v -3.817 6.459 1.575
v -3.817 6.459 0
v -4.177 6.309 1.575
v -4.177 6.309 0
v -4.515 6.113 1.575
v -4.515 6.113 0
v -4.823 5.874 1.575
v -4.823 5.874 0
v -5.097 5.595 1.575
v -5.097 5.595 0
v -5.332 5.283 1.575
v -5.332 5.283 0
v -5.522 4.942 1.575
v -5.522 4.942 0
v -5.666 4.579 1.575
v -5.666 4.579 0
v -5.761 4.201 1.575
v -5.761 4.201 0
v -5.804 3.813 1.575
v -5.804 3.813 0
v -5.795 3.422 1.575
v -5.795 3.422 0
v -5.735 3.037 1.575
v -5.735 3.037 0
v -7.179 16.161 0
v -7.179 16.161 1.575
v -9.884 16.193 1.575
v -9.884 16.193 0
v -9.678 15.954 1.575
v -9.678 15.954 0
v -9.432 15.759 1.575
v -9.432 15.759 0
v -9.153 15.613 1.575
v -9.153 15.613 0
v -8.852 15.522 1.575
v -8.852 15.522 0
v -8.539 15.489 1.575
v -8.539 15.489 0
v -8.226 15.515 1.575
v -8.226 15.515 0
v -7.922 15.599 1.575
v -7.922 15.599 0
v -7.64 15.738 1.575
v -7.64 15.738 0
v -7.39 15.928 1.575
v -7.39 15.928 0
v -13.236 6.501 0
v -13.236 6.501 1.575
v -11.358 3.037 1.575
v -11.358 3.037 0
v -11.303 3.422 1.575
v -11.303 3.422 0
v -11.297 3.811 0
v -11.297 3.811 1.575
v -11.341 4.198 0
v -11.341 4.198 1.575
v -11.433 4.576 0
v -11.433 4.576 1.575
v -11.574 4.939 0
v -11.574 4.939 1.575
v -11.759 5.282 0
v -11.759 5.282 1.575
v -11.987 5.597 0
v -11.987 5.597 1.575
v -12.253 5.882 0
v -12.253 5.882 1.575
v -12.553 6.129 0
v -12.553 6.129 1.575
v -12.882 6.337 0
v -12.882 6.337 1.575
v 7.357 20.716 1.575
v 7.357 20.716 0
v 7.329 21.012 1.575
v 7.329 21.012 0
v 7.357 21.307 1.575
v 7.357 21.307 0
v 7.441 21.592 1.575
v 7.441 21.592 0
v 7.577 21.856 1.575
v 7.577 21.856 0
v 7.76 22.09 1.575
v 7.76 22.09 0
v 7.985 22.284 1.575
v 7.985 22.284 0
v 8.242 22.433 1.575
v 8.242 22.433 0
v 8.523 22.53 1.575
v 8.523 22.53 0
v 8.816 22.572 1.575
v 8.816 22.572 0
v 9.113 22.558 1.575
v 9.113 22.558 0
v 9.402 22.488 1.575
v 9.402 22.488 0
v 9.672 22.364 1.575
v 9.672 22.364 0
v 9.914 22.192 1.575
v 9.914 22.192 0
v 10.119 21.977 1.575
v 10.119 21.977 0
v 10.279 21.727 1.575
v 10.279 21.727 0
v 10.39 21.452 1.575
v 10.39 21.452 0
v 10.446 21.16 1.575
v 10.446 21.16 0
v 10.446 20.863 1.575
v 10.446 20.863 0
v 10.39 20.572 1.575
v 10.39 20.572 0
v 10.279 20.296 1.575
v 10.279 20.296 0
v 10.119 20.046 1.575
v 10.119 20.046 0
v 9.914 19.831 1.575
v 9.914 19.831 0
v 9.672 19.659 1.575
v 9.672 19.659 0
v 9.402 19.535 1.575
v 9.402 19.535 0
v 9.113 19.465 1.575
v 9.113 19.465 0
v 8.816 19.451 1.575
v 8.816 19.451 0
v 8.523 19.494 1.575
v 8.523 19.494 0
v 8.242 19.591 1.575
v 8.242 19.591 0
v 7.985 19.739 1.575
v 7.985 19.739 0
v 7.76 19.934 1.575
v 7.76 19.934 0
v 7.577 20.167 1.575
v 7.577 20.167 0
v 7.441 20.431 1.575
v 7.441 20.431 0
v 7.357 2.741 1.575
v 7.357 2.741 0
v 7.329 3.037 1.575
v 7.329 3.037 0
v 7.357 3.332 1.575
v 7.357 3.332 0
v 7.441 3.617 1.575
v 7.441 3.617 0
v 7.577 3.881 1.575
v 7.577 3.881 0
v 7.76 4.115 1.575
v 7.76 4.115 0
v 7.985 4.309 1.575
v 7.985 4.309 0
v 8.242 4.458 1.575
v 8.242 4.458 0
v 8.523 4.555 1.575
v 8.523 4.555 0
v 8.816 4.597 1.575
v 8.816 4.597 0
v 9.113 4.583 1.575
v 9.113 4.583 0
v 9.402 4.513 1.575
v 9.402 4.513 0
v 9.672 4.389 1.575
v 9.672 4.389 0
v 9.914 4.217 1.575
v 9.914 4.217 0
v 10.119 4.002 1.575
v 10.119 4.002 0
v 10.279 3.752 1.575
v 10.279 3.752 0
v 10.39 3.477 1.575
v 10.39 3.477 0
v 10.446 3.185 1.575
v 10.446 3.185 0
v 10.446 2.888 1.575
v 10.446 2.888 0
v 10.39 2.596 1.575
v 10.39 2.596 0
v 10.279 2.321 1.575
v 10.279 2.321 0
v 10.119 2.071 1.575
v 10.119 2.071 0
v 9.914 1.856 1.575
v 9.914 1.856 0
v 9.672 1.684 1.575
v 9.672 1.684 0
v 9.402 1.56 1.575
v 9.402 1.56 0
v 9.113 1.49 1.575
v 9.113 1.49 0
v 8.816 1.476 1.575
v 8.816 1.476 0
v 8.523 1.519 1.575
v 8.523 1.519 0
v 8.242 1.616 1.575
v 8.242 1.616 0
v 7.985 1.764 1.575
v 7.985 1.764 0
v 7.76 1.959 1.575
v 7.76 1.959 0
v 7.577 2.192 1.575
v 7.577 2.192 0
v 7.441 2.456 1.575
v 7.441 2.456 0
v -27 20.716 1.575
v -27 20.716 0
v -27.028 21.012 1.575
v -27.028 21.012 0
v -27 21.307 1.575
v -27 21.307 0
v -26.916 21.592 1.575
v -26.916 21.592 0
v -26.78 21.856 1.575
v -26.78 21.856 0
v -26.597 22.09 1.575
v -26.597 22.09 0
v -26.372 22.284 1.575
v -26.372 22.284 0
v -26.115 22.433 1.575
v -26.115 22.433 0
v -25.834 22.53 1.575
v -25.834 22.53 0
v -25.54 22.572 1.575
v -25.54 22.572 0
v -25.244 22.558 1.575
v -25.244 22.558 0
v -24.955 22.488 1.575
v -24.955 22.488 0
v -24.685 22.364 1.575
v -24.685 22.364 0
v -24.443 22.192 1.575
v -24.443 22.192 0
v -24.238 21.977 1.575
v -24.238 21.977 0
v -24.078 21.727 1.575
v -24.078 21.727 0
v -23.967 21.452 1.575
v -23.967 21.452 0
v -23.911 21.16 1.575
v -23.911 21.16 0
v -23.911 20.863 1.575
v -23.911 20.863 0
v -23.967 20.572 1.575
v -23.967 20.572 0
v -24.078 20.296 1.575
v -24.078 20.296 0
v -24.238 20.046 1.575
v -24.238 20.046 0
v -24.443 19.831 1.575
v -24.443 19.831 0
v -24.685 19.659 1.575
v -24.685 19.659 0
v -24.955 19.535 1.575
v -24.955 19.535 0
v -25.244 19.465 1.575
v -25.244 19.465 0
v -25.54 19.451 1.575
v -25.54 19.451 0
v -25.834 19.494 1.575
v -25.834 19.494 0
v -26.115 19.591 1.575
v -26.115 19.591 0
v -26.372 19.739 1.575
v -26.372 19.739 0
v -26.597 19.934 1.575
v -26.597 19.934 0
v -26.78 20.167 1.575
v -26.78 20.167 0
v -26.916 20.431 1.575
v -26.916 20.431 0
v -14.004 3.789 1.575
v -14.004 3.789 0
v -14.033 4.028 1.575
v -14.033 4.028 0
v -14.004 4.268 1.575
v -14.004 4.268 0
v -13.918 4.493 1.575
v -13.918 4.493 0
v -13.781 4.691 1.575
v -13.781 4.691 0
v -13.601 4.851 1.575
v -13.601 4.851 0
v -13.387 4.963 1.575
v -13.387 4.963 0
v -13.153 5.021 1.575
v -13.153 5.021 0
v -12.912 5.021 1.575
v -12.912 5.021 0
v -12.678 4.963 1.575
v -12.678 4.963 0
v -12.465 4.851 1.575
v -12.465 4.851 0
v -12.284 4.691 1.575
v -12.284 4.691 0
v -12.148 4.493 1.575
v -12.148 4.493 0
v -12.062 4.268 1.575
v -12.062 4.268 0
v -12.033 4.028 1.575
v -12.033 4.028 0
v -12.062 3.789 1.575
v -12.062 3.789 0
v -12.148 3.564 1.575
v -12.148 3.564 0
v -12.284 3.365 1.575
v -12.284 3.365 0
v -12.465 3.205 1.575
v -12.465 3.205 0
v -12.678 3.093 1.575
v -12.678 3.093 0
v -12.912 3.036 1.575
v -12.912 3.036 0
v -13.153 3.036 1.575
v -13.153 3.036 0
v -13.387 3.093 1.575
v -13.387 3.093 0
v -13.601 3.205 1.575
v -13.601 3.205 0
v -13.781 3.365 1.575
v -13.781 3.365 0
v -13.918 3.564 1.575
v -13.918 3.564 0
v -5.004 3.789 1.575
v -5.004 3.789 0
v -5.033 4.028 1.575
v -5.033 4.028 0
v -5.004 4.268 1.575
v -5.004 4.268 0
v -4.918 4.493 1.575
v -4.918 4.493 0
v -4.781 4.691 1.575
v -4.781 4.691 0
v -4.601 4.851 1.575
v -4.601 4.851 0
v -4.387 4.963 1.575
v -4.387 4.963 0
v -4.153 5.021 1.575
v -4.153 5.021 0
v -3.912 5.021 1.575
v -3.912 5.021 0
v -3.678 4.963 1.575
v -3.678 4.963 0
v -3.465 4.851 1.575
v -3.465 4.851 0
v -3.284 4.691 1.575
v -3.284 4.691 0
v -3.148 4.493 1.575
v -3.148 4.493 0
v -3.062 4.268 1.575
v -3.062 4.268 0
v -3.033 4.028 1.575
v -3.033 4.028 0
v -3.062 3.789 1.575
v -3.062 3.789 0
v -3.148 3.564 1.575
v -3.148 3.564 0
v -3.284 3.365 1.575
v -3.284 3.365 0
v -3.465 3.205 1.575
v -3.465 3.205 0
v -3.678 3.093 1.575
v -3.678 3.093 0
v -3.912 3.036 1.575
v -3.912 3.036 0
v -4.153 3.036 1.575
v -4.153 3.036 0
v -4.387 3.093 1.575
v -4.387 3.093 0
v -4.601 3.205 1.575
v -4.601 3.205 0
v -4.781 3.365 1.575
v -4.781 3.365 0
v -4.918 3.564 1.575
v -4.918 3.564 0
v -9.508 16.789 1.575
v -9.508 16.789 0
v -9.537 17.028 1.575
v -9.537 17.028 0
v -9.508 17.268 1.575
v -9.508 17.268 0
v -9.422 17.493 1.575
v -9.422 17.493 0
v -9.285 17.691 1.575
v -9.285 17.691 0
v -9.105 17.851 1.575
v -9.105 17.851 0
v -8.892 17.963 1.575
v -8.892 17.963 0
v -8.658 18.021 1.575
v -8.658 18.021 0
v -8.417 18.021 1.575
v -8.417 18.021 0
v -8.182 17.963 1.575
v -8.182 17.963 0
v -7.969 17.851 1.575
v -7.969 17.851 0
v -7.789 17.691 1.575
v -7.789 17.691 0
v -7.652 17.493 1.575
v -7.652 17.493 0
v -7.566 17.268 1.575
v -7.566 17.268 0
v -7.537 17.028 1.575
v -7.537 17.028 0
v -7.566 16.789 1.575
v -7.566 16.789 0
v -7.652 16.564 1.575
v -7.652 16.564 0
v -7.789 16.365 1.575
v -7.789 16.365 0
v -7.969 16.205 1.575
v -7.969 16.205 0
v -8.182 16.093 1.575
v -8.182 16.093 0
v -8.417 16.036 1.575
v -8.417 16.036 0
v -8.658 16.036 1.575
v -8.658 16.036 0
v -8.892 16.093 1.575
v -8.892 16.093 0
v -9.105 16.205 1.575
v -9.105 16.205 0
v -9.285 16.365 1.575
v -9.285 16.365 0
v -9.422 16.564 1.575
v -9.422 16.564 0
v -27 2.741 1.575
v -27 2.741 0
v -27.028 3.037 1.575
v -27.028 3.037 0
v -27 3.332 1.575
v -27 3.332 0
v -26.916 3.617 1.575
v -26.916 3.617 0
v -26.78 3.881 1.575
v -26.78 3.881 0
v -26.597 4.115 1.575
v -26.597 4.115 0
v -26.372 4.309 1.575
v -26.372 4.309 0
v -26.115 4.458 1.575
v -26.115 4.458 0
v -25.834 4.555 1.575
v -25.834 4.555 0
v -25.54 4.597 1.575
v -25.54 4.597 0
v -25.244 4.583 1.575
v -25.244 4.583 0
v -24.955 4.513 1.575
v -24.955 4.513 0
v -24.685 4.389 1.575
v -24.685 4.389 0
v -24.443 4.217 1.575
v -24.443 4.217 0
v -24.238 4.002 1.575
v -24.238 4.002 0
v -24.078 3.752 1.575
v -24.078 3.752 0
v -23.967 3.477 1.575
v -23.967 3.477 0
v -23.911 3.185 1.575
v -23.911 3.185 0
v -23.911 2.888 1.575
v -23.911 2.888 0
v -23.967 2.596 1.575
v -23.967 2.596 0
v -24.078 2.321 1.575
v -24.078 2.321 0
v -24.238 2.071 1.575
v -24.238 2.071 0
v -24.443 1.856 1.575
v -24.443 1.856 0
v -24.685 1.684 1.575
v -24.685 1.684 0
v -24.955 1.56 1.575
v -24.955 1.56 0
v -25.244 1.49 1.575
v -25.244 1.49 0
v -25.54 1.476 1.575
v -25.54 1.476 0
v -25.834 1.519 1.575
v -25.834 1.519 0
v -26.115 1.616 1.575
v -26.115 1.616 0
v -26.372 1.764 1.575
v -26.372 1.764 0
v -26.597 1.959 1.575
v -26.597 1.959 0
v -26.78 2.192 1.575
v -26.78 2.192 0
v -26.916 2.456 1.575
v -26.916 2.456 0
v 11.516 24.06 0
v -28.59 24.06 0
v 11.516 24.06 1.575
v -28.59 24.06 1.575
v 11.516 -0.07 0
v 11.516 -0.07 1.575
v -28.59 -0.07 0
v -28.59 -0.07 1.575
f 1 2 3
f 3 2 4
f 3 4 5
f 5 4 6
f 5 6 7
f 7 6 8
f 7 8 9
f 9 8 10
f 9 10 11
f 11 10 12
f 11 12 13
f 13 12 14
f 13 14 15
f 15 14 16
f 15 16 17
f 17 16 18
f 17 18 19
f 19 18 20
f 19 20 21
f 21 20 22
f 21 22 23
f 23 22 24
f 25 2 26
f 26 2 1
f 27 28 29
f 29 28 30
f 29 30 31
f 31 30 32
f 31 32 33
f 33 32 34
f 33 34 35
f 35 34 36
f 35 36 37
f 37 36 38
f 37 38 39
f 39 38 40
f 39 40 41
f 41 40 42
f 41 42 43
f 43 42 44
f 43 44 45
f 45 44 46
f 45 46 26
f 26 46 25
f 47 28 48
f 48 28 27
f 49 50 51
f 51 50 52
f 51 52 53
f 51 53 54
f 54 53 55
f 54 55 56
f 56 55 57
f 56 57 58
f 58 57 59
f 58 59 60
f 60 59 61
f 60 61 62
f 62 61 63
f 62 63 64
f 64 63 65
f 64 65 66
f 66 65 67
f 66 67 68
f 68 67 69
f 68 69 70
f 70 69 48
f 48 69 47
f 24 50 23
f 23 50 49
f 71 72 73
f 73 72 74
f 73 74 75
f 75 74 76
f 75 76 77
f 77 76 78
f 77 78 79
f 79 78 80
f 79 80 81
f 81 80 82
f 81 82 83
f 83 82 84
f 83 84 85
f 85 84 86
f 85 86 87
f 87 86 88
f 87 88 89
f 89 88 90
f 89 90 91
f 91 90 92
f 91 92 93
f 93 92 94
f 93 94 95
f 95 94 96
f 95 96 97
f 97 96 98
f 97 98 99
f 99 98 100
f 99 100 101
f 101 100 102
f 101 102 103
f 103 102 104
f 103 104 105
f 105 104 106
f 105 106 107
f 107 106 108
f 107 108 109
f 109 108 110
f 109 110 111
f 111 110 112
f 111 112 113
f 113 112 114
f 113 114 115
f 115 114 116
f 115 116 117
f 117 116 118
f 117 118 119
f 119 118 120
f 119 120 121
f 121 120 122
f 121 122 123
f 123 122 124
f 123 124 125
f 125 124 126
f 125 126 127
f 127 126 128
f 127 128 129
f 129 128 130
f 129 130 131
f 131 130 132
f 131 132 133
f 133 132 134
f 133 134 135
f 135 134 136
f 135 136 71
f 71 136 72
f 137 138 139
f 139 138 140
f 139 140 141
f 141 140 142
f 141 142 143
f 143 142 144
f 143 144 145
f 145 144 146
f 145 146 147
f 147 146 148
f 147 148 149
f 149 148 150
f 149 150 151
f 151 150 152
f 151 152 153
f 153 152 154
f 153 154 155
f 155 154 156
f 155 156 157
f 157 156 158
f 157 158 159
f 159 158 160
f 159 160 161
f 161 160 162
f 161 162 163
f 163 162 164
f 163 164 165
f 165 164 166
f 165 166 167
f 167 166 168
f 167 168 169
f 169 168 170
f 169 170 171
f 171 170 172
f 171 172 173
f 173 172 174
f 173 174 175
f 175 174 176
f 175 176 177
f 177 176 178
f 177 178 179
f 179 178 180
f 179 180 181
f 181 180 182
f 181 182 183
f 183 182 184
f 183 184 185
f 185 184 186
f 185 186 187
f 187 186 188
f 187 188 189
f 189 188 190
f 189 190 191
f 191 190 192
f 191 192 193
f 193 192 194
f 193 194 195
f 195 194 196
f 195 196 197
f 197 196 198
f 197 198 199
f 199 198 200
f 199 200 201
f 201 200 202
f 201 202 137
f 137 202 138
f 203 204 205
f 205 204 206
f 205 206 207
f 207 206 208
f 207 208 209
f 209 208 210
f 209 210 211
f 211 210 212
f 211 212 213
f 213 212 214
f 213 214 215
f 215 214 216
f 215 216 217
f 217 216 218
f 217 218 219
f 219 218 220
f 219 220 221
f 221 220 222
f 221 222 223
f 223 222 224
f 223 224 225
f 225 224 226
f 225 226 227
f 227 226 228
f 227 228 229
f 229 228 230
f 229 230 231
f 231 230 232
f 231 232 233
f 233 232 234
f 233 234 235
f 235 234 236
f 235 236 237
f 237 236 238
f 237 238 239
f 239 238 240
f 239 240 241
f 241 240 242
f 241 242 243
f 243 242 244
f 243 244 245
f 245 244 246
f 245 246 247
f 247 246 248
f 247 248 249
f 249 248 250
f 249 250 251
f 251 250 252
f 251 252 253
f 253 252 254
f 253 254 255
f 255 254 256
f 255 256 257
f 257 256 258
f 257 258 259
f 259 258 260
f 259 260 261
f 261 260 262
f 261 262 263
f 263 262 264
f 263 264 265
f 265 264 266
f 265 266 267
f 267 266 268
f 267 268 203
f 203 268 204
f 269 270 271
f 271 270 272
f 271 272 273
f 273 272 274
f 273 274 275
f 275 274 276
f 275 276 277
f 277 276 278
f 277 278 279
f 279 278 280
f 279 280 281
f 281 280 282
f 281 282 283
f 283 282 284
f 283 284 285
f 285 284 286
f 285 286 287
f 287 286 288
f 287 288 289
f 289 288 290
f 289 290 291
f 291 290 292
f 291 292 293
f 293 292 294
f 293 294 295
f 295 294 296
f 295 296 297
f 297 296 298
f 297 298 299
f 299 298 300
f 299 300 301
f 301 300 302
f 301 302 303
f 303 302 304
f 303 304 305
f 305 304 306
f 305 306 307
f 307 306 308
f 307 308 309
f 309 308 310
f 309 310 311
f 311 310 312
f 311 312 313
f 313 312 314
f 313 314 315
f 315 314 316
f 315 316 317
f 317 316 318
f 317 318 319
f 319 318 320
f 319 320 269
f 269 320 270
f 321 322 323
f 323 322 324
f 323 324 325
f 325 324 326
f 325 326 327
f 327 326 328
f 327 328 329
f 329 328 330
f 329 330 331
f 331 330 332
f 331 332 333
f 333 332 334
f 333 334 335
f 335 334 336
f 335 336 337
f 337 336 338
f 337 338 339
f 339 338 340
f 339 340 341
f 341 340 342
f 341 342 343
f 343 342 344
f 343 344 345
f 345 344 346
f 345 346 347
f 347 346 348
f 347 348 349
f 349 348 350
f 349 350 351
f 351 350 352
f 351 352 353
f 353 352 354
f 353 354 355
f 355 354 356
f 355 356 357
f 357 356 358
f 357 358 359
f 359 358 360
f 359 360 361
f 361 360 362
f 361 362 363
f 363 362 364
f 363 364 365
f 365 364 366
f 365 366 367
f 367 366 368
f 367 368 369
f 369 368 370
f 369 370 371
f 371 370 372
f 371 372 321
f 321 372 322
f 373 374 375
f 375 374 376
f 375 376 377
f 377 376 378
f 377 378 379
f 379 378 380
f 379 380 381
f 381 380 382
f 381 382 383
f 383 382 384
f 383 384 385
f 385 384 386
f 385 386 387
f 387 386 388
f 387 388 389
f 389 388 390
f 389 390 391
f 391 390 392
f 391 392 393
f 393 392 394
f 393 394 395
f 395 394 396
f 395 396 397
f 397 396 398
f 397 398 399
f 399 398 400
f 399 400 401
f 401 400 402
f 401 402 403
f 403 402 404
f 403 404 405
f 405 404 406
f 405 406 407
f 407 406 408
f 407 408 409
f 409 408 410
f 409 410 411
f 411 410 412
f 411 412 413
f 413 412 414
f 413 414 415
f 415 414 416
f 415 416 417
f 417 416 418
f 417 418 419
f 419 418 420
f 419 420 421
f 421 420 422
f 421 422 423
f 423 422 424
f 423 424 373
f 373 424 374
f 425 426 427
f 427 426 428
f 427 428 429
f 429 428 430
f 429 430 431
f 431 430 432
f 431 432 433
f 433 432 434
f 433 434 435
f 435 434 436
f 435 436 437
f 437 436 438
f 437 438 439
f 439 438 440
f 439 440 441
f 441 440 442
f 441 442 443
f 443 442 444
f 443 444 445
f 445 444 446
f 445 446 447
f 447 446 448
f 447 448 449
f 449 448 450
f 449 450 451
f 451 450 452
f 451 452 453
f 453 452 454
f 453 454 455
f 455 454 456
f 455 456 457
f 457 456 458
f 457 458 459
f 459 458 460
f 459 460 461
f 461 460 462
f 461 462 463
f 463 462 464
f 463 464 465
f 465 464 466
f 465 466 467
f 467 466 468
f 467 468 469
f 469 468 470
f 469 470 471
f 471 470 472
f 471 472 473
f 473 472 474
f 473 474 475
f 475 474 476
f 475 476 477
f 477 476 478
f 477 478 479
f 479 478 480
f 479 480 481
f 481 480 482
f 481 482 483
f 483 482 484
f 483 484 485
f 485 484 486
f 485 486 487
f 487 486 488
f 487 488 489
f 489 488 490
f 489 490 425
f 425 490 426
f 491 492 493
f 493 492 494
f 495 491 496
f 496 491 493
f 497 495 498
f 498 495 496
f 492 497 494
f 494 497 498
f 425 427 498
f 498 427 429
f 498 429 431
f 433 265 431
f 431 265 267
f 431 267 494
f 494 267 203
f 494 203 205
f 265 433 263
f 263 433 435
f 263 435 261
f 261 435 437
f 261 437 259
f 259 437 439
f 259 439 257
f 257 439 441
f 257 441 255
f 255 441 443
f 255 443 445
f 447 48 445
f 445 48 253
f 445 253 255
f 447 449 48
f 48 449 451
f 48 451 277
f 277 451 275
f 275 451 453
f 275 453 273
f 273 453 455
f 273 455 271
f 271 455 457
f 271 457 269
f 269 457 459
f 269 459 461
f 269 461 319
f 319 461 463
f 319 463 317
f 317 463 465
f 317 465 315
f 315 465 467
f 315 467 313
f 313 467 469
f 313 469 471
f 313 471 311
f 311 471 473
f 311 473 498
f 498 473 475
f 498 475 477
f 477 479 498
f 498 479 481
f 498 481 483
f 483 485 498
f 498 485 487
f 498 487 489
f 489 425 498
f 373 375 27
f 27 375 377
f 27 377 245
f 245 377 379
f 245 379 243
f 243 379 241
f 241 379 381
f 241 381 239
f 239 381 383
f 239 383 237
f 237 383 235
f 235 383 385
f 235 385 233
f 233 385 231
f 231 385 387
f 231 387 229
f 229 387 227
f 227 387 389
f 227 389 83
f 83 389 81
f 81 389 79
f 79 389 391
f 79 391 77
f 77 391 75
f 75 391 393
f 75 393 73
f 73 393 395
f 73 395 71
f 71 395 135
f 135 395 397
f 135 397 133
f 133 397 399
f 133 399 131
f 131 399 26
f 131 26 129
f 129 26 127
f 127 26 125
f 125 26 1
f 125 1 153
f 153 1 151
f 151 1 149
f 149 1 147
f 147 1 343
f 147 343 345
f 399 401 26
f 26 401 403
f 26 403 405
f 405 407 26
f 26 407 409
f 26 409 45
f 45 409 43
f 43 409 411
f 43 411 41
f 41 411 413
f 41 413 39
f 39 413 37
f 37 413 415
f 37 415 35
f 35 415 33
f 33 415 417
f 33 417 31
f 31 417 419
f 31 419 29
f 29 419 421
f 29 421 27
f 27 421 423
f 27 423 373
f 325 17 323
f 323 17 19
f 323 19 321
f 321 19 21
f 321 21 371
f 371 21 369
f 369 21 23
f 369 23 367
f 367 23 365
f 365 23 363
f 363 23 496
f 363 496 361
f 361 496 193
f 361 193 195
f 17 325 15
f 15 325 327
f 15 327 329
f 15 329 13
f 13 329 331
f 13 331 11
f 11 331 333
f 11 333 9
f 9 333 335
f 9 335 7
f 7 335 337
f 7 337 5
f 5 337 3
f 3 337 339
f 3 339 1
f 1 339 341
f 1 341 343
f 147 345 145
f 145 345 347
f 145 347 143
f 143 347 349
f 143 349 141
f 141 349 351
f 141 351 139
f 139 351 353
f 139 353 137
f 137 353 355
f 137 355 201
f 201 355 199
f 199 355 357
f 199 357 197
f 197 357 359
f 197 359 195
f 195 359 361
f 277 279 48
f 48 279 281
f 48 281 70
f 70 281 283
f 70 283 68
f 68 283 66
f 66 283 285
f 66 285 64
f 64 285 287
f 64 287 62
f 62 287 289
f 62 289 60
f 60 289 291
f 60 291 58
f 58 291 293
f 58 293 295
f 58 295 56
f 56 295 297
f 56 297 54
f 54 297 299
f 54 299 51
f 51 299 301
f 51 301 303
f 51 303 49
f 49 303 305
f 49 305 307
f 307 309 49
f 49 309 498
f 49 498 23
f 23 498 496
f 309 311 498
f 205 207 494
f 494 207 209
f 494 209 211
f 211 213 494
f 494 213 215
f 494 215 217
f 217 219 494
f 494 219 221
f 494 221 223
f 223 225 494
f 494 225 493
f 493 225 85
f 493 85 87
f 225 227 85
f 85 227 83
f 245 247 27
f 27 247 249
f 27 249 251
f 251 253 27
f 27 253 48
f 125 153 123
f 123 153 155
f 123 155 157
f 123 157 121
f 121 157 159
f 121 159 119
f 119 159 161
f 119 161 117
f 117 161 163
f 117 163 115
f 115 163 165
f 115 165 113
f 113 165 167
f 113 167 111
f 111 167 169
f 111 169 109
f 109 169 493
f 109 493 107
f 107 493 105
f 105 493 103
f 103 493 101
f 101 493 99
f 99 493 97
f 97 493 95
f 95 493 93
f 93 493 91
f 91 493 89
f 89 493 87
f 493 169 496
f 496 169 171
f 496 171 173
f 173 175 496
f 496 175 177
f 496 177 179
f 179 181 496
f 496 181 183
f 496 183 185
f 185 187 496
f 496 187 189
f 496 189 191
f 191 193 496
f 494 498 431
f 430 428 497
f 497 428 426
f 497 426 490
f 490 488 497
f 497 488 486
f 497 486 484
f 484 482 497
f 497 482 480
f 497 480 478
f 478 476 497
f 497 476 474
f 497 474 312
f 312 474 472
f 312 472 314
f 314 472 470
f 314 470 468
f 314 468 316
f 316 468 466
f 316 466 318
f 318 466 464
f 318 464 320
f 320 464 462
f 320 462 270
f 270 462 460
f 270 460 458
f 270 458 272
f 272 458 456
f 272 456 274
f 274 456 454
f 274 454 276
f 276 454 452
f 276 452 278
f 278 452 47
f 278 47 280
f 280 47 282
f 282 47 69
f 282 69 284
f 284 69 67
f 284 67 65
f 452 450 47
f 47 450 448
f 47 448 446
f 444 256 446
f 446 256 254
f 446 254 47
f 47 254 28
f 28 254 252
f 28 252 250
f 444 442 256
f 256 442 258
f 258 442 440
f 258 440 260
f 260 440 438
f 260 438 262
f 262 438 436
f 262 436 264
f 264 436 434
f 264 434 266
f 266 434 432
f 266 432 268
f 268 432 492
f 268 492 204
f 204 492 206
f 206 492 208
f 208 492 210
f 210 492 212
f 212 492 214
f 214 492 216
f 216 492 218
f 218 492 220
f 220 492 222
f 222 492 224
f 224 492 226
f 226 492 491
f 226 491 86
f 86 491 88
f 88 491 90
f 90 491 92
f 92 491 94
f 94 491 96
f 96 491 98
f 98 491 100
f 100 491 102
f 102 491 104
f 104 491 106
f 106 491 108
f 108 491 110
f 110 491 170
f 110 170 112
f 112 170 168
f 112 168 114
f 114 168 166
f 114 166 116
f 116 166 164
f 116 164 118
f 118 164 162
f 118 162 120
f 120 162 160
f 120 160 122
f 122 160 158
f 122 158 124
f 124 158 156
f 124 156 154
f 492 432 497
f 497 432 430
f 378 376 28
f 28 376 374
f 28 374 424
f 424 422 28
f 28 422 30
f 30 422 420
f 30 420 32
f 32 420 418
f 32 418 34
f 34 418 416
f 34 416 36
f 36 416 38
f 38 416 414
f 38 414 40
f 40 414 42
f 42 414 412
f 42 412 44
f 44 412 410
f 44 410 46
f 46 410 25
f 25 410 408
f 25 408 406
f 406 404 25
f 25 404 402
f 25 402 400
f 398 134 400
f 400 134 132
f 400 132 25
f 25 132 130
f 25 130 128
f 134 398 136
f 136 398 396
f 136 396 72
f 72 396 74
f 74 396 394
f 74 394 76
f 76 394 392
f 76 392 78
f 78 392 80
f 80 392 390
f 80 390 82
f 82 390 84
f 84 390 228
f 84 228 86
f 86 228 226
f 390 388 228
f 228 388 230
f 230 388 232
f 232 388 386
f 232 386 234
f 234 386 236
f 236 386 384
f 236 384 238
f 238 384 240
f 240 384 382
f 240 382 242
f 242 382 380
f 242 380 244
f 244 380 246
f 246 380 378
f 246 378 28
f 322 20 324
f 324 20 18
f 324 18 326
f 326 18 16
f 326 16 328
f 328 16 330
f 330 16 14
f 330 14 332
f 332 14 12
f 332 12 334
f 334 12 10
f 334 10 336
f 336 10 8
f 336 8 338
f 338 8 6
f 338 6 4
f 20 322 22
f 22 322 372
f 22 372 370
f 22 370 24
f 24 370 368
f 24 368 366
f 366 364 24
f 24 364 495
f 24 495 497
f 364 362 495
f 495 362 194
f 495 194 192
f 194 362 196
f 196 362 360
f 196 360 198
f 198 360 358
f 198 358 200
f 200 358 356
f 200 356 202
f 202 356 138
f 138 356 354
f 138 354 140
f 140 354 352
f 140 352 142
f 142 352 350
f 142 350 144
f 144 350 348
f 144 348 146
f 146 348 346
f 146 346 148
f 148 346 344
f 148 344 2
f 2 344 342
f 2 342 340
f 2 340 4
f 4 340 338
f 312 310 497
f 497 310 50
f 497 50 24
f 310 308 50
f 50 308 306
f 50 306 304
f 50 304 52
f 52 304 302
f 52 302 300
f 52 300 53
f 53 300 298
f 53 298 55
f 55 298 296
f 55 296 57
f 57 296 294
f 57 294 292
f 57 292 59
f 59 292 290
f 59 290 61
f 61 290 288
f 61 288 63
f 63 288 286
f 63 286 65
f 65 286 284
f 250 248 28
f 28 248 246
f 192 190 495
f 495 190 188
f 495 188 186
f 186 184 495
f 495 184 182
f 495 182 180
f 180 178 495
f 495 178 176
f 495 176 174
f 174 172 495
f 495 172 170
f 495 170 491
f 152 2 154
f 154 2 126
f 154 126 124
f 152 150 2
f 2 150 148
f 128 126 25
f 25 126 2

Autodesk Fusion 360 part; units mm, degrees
sketch "Sketch1" plane through (0, 0, 0) normal (0, 0, 1) x (1, 0, 0)
  line L0 (-28.5903, -0.0704) -> (11.5163, -0.0704)
  line L1 (11.5163, -0.0704) -> (11.5163, 24.0596)
  line L2 (11.5163, 24.0596) -> (-28.5903, 24.0596)
  line L3 (-28.5903, 24.0596) -> (-28.5903, -0.0704)
  line L4 (-8.537, 24.0596) -> (-8.537, -0.0704) construction
  line L5 (-28.5903, 3.0284) -> (11.5163, 3.0284) construction
  circle A0 centre (-25.4661, 21.0116) radius 1.5621
  circle A1 centre (8.8908, 21.0116) radius 1.5621
  circle A2 centre (8.8908, 3.0366) radius 1.5621
  circle A3 centre (-25.4661, 3.0366) radius 1.5621
  line L6 (-25.4661, 21.0116) -> (-25.4661, 3.0366) construction
  line L7 (-25.4661, 3.0366) -> (8.8908, 3.0366) construction
  line L8 (8.8908, 3.0366) -> (8.8908, 21.0116) construction
  line L9 (8.8908, 21.0116) -> (-25.4661, 21.0116) construction
  line L10 (-17.572, 16.5219) -> (-0.0282, 16.5219) construction
  line L11 (-13.6343, 7.2364) -> (-11.3582, 3.0366) construction
  line L12 (-5.7345, 3.0366) -> (-3.185, 7.5867) construction
  circle A4 centre (-8.537, 17.0283) radius 0.9998
  circle A5 centre (-4.0328, 4.0283) radius 0.9998
  circle A6 centre (-13.0328, 4.0283) radius 0.9998
  line L13 (-9.4819, 17.355) -> (-13.9777, 4.355) construction
  line L14 (-7.5923, 17.3556) -> (-3.0881, 4.3556) construction
  line L15 (-9.77, 16.5219) -> (-13.2356, 6.5009)
  line L16 (-7.3035, 16.5219) -> (-3.8169, 6.459)
  line L17 (-11.3582, 3.0366) -> (-5.7345, 3.0366)
  arc A7 (-11.3582, 3.0366) -> (-13.2356, 6.5009) centre (-14.3377, 3.6627) ccw
  arc A8 (-3.8169, 6.459) -> (-5.7345, 3.0366) centre (-2.8758, 3.6832) ccw
  arc A9 (-9.8839, 16.1927) -> (-7.1785, 16.1614) centre (-8.5198, 17.1617) ccw
  point P0 (-13.2356, 6.5009)
  point P1 (-3.8169, 6.459)
  dimension "d1" = 40.1066
  dimension "d2" = 24.13
  dimension "d12" = 3.0988
  dimension "d15" = 3.1242
  dimension "d16" = 3.048
  dimension "d17" = 3.1242
  dimension "d25" = 13
  dimension "d26" = 9
  dimension "d27" = 13
  dimension "d28" = 4.4958
  dimension "d29" = 4.5042
extrude "Extrude1" add sketch "Sketch1" along normal blind 1.5748
